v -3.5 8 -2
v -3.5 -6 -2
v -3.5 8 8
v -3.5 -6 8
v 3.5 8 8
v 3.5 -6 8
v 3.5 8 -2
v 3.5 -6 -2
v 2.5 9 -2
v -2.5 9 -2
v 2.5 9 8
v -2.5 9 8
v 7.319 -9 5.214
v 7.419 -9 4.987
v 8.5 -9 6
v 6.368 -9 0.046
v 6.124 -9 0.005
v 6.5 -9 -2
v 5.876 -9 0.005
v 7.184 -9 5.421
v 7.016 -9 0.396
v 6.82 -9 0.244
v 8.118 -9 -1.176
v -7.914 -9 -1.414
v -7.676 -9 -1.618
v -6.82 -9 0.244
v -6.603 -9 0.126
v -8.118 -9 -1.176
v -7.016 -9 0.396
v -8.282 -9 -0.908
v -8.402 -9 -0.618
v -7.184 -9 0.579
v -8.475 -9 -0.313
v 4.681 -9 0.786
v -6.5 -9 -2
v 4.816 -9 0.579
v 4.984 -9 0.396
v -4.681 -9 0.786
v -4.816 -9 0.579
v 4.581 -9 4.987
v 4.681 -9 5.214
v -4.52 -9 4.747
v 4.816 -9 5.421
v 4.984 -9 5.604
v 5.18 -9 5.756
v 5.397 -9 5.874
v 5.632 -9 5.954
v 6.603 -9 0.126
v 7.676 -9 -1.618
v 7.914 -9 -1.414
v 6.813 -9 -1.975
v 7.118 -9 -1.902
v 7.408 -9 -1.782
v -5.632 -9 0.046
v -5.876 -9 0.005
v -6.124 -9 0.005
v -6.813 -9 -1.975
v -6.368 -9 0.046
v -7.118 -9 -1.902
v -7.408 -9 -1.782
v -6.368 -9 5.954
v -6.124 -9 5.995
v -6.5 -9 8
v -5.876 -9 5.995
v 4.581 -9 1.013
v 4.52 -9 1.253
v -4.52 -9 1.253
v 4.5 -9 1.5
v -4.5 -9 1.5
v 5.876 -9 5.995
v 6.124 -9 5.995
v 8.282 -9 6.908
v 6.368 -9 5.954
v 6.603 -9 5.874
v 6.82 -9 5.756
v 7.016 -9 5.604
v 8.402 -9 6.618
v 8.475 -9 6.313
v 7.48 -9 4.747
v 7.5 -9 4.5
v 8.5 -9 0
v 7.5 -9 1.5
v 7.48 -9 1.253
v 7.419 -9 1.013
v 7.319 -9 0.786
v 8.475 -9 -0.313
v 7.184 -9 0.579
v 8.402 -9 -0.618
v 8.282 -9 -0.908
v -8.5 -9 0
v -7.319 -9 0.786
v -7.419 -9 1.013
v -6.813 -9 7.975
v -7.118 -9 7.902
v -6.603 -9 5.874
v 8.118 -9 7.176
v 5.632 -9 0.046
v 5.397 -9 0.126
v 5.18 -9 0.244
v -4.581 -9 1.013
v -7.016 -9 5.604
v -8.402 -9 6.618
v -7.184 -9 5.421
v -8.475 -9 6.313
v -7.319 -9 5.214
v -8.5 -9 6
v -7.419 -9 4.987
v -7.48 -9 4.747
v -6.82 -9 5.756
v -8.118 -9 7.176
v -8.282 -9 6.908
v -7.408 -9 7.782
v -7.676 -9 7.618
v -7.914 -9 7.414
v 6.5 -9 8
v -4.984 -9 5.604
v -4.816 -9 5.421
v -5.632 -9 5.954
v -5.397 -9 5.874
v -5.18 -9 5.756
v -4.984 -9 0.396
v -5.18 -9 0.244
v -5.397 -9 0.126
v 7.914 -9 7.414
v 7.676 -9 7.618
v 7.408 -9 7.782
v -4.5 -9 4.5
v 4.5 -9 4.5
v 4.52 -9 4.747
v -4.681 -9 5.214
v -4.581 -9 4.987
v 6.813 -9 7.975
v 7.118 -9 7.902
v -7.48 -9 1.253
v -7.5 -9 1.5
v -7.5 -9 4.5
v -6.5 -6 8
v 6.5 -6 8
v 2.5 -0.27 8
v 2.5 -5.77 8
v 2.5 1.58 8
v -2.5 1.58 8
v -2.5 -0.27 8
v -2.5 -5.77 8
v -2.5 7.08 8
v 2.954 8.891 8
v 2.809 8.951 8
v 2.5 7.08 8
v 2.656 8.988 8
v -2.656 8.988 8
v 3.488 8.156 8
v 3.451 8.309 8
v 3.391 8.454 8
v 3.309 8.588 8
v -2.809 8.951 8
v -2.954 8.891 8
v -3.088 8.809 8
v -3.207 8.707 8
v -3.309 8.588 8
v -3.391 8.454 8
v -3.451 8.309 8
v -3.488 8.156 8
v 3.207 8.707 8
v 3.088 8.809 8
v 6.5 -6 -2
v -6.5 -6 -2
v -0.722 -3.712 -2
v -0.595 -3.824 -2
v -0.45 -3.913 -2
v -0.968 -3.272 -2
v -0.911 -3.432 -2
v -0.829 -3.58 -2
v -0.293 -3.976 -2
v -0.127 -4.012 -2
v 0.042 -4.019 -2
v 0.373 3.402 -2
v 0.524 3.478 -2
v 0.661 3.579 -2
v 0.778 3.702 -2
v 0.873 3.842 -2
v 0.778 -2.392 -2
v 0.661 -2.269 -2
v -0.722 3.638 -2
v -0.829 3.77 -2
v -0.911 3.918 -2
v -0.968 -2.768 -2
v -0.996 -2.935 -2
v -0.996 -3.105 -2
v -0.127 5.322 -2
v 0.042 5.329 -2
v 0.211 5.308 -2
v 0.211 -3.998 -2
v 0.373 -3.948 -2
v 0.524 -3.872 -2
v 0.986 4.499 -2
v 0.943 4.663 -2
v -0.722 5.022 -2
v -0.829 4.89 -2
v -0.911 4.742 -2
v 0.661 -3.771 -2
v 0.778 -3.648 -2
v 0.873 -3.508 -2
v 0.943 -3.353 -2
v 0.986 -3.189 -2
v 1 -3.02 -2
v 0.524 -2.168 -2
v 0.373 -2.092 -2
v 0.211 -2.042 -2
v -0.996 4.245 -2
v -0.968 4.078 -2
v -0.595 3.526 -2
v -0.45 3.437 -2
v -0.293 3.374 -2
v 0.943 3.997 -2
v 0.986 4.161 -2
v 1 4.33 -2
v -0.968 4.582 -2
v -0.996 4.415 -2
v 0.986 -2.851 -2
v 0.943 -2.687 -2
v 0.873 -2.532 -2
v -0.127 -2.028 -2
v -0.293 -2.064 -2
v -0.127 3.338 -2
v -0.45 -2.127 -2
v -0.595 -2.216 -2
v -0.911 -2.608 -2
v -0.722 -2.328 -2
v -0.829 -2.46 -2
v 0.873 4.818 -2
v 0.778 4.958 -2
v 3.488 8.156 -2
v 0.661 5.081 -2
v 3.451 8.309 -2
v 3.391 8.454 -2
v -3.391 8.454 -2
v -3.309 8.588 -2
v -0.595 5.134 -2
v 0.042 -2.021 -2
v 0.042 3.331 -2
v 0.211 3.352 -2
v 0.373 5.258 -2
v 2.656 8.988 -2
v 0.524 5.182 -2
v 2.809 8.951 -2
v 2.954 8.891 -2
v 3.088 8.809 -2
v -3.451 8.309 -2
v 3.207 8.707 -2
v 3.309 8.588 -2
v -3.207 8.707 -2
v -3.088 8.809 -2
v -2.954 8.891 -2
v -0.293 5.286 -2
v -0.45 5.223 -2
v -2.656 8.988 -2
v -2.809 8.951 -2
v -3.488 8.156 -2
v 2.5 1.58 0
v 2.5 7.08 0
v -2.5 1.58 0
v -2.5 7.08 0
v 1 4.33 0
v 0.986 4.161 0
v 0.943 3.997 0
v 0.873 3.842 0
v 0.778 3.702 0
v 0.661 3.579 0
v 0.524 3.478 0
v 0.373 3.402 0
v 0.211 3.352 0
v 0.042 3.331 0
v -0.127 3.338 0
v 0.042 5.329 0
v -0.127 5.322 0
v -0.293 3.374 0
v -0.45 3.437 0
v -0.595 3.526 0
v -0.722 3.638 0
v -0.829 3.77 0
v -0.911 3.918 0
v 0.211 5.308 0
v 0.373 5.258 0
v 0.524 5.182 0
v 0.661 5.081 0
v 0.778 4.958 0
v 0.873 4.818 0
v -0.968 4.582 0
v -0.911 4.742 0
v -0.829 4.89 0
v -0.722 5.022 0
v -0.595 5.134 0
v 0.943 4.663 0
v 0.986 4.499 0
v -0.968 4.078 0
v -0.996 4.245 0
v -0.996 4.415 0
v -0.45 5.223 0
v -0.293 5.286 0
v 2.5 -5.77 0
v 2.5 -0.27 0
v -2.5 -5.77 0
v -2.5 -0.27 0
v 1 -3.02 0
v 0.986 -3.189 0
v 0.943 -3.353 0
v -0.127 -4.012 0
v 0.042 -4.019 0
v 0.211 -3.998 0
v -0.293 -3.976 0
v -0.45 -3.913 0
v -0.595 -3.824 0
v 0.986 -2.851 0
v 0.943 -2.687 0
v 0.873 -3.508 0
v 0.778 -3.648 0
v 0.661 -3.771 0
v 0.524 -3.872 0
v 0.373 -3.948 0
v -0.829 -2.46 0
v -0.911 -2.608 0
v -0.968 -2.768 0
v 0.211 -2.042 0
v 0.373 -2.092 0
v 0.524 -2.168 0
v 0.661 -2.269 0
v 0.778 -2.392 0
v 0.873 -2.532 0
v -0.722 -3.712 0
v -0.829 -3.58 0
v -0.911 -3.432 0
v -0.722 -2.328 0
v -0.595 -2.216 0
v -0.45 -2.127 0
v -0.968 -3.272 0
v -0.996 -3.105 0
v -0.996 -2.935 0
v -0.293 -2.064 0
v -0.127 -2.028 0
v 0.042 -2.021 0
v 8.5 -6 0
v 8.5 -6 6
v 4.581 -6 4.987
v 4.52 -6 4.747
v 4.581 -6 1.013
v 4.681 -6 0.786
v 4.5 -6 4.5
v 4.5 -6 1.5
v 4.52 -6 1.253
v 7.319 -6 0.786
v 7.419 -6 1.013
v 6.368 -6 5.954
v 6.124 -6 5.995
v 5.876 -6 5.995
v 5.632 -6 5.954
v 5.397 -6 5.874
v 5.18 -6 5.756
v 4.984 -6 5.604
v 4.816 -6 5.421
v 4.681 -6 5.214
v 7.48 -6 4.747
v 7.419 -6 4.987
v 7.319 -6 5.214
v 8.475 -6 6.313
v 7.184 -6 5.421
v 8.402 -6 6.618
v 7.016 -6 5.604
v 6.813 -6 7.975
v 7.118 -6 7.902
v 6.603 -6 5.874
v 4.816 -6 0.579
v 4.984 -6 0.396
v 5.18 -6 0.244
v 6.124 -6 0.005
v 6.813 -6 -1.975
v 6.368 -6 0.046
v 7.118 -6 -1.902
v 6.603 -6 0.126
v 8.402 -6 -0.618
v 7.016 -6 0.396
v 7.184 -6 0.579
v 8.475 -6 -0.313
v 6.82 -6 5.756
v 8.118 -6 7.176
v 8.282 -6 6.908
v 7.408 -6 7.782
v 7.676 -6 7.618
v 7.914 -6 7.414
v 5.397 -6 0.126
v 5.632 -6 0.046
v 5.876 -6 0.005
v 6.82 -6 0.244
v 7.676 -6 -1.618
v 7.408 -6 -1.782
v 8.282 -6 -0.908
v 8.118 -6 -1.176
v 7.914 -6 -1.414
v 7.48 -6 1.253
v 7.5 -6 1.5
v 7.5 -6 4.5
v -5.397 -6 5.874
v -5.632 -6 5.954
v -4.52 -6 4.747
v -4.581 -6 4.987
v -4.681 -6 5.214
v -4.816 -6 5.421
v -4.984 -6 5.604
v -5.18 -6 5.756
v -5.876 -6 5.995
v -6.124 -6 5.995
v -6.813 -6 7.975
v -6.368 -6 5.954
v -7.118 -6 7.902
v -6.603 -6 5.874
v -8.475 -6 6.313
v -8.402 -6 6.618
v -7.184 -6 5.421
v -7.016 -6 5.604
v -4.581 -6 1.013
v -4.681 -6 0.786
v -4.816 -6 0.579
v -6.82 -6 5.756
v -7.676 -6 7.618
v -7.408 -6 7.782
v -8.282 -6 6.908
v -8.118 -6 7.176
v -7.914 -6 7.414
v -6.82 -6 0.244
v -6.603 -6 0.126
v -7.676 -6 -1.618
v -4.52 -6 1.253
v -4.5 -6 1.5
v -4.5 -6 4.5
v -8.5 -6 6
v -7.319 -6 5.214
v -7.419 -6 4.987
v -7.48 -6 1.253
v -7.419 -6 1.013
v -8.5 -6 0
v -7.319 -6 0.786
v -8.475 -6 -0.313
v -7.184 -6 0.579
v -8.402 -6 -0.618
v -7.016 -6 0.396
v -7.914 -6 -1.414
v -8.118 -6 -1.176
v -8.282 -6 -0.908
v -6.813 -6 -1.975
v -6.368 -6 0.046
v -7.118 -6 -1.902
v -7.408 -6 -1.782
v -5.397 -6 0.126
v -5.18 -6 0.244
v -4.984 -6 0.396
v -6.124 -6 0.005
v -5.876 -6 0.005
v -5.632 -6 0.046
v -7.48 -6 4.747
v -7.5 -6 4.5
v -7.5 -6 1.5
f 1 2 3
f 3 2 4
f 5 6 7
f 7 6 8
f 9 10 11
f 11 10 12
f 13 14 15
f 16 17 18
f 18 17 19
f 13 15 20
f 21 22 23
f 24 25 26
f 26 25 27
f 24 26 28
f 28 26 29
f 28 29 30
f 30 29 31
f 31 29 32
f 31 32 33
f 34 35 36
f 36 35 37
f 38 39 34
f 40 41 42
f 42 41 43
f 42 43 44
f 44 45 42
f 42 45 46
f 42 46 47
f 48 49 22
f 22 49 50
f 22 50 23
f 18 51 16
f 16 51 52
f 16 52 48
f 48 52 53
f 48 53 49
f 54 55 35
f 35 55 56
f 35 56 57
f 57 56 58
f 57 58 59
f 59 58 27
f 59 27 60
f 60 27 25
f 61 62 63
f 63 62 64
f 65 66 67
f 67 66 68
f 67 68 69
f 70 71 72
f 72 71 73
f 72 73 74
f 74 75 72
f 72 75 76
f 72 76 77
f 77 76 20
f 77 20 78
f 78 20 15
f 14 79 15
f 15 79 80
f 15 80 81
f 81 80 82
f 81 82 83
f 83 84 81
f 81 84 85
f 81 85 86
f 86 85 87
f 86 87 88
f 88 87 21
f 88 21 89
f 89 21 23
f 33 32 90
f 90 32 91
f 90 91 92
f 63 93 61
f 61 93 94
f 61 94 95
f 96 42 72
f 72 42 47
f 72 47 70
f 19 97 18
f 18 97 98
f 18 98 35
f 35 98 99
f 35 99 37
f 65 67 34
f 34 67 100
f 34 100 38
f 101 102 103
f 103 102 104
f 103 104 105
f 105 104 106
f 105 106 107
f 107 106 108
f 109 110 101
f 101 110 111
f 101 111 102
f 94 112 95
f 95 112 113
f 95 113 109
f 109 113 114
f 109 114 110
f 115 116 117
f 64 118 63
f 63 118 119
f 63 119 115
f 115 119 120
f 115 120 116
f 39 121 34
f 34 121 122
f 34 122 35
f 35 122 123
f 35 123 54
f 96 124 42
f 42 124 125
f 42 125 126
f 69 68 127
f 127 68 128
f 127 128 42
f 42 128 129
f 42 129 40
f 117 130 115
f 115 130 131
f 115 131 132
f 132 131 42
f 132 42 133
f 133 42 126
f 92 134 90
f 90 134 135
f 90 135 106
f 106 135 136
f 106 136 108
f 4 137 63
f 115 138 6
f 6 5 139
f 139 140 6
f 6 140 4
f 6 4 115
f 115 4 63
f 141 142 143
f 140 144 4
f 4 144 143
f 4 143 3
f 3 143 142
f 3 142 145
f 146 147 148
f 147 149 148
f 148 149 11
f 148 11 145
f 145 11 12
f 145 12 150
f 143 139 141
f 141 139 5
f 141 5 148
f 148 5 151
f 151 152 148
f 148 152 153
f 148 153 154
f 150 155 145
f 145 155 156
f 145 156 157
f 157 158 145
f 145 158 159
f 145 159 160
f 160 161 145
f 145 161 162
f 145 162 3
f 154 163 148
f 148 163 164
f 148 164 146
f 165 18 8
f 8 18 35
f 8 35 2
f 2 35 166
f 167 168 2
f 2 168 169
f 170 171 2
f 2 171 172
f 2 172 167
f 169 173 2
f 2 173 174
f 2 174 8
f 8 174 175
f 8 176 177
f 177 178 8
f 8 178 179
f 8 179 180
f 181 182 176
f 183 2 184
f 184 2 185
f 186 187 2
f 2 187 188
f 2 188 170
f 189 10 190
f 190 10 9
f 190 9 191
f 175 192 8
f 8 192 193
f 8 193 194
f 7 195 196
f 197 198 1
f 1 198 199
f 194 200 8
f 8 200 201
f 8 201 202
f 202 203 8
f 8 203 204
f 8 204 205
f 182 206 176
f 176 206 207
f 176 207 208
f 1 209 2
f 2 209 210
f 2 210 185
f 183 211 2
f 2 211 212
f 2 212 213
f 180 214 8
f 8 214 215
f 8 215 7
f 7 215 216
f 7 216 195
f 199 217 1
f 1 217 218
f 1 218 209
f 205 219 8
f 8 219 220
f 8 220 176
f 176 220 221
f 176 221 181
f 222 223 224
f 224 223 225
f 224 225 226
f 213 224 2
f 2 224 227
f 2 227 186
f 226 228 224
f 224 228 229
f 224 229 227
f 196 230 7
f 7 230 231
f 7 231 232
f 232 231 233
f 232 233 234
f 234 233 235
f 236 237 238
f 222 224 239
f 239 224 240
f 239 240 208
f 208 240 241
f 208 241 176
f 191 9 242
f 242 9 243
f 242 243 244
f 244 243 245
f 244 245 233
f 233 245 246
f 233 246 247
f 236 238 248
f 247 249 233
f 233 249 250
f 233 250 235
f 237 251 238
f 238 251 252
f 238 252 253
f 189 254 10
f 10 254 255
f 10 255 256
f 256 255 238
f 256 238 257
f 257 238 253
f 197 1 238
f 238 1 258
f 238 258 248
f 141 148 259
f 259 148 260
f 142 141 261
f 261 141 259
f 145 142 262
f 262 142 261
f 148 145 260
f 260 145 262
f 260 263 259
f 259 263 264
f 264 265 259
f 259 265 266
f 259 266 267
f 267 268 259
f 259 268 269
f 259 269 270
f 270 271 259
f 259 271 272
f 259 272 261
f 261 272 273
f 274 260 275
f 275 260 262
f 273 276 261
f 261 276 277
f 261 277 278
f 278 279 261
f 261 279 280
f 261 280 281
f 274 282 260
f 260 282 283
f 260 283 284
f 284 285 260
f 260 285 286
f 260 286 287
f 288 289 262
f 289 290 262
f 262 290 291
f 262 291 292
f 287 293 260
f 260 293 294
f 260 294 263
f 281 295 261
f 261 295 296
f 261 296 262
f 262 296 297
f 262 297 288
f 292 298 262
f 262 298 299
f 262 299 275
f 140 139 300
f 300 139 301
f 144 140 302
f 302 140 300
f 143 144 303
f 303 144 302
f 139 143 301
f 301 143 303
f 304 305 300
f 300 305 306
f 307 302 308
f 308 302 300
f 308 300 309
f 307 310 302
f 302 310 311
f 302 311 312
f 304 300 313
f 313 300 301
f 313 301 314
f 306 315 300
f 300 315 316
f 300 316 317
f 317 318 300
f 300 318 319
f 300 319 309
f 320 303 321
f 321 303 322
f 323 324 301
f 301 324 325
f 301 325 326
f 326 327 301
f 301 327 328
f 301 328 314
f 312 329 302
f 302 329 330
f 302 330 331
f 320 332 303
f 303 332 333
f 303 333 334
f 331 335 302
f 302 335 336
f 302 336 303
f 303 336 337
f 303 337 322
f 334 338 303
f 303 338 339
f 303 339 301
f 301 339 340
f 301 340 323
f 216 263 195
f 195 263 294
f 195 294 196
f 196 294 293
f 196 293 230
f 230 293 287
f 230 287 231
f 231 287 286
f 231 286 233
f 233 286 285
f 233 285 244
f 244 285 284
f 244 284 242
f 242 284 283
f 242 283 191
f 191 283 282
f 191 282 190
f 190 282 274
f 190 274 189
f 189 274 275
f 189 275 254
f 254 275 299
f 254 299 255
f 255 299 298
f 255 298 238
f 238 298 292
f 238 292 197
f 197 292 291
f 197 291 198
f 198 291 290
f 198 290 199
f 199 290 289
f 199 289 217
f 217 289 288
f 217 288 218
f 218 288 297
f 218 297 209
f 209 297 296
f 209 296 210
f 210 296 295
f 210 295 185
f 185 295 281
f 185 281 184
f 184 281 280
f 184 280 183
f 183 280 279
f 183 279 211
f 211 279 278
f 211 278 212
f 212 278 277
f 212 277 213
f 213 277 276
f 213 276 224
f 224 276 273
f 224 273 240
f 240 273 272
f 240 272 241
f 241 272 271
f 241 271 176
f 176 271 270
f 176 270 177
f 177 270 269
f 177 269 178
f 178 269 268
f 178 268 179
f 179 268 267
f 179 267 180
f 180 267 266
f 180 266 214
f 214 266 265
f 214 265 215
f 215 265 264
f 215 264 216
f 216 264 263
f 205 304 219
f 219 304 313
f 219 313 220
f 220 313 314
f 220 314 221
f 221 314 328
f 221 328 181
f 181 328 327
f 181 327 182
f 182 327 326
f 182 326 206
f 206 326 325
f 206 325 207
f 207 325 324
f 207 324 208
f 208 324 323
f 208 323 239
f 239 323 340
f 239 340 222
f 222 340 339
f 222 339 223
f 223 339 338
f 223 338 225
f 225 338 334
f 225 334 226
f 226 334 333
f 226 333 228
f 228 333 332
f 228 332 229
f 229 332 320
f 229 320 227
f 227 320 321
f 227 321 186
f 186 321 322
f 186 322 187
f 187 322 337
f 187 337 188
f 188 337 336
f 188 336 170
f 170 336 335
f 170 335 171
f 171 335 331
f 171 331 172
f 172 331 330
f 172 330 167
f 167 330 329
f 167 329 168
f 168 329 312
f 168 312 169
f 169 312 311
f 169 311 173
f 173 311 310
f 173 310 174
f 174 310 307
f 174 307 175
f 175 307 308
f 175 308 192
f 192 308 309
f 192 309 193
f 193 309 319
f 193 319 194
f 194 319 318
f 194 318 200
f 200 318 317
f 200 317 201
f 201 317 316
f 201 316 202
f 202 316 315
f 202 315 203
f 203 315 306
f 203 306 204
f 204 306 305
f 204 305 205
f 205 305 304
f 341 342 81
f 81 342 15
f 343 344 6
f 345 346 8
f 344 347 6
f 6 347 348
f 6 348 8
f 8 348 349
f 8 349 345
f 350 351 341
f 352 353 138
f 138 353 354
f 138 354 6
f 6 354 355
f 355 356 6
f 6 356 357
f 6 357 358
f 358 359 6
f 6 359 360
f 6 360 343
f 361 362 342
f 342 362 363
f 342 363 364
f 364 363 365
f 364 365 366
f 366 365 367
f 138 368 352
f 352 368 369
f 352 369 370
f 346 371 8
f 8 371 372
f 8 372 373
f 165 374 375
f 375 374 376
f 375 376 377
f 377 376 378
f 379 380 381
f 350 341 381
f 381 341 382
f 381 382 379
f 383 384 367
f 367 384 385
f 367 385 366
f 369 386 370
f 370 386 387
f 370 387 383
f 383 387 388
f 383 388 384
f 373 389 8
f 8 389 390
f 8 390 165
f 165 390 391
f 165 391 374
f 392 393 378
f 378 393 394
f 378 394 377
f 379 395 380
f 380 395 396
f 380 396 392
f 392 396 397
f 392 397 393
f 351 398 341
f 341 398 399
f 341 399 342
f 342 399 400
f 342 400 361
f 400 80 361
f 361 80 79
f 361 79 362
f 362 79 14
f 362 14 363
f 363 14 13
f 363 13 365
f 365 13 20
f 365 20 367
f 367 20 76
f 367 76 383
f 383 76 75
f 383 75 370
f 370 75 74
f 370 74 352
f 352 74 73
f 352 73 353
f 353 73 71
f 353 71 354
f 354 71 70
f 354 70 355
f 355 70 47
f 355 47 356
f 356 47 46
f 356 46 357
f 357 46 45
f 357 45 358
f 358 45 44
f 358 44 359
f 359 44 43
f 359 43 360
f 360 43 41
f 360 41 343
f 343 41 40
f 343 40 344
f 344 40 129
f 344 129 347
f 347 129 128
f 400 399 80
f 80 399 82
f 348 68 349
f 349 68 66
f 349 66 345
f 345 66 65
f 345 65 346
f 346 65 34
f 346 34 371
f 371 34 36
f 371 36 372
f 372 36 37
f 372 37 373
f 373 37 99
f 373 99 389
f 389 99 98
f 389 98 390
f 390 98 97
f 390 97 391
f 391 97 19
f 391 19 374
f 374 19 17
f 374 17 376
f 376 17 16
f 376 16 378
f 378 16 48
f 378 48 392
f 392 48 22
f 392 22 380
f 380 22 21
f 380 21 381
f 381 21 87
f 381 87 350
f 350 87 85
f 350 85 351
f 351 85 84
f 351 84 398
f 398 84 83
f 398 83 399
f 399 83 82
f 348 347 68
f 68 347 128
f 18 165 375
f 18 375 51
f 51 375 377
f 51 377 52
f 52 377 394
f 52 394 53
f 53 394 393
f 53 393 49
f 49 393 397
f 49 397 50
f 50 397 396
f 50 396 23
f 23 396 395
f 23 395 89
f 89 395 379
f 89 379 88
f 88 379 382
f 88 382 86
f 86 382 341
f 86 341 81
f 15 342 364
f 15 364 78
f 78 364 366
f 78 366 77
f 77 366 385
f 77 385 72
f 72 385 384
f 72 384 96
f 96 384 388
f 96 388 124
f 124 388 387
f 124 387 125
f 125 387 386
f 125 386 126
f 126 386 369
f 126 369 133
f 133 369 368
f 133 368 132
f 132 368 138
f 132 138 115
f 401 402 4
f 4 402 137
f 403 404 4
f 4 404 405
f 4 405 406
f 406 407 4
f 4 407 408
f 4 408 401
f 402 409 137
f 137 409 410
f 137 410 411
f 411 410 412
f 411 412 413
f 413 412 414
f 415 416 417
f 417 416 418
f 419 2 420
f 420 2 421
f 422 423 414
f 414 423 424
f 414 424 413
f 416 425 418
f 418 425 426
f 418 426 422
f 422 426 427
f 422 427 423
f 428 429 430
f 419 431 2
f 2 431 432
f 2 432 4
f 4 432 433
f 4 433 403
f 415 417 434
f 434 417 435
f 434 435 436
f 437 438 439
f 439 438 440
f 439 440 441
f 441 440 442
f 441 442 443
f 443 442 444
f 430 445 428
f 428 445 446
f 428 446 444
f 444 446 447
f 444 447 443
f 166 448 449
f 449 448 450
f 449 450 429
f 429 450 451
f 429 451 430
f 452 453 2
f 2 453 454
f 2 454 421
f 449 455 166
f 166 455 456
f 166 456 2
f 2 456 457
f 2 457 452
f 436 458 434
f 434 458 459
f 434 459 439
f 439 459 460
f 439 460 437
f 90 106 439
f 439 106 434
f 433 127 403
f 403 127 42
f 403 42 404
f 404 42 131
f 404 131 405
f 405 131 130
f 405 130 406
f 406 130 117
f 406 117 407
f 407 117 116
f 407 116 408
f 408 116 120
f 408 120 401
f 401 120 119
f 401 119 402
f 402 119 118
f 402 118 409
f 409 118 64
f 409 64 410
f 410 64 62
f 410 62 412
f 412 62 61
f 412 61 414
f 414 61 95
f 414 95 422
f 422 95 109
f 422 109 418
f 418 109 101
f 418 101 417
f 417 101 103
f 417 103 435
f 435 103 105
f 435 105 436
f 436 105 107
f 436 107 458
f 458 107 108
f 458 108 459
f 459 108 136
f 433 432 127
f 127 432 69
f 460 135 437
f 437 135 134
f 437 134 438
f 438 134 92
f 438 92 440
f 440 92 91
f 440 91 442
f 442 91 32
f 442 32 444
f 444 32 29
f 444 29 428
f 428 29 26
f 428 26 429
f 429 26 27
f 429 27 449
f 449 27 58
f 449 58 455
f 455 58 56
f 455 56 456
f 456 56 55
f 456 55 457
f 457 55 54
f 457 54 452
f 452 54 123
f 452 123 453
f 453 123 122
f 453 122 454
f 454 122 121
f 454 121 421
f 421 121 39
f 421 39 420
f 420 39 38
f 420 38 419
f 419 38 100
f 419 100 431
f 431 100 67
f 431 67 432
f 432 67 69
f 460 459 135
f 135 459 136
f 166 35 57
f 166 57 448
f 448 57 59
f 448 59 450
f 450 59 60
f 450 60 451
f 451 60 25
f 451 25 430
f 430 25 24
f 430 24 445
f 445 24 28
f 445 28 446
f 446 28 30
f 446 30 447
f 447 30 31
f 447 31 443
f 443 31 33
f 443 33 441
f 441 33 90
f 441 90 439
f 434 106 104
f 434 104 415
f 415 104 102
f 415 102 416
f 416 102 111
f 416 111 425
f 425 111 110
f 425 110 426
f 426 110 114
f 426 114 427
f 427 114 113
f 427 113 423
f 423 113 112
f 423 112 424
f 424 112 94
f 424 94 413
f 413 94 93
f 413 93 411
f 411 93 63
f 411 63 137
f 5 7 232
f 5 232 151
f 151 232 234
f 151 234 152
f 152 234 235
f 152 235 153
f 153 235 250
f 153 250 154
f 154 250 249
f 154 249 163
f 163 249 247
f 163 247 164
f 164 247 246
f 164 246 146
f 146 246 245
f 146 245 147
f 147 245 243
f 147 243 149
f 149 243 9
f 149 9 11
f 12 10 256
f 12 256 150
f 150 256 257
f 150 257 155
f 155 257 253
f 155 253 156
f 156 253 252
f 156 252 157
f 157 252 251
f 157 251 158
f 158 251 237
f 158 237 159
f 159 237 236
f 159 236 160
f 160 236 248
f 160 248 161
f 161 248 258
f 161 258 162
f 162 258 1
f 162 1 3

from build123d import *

# Parameters (mm, degrees)
SKETCH1_W            = 7
SKETCH1_H            = 18
BOSS_EXTRUDE1_DEPTH  = 8
SKETCH3_W            = 7
SKETCH3_H            = 18
BOSS_EXTRUDE2_DEPTH  = 2
SKETCH2_W            = 5
SKETCH2_H            = 5.5
CUT_EXTRUDE1_DEPTH   = 8
SKETCH4_R            = 1
CUT_EXTRUDE2_DEPTH   = 3
SKETCH5_W            = 5
SKETCH5_H            = 10
BOSS_EXTRUDE3_DEPTH  = 3
FILLET1_R            = 2
FILLET1_OF_MIRROR2_R = 2
FILLET2_R            = 1


with BuildPart() as part:
    # Sketch1 → Boss-Extrude1 (new body)
    with BuildSketch(Plane.XY):
        Rectangle(SKETCH1_W, SKETCH1_H)
    extrude(amount=BOSS_EXTRUDE1_DEPTH)

    # Sketch3 → Boss-Extrude2 (add)
    with BuildSketch(Plane(origin=(0, 0, 0), x_dir=(-1, 0, 0), z_dir=(0, 0, -1))):
        Rectangle(SKETCH3_W, SKETCH3_H)
    extrude(amount=BOSS_EXTRUDE2_DEPTH)

    # Sketch2 → Cut-Extrude1 (cut)
    with BuildSketch(Plane.XY.offset(8)):
        with Locations((0, 4.33)):
            Rectangle(SKETCH2_W, SKETCH2_H)
        with Locations((0, -3.02)):
            Rectangle(SKETCH2_W, SKETCH2_H)
    extrude(amount=-CUT_EXTRUDE1_DEPTH, mode=Mode.SUBTRACT)

    # Sketch4 → Cut-Extrude2 (cut, through all)
    with BuildSketch(Plane.XY):
        with Locations((0, 4.33)):
            Circle(SKETCH4_R)
        with Locations((0, -3.02)):
            Circle(SKETCH4_R)
    extrude(amount=-CUT_EXTRUDE2_DEPTH, mode=Mode.SUBTRACT)

    # Sketch5 → Boss-Extrude3 (add)
    with BuildSketch(Plane.XZ.offset(9)):
        with Locations((6, 3)):
            Rectangle(SKETCH5_W, SKETCH5_H)
        with BuildLine():
            Line((7.5, 4.5), (7.5, 1.5))
            ThreePointArc((7.5, 1.5), (6, 0), (4.5, 1.5))
            Line((4.5, 1.5), (4.5, 4.5))
            ThreePointArc((4.5, 4.5), (6, 6), (7.5, 4.5))
        make_face(mode=Mode.SUBTRACT)
    boss_extrude3 = extrude(amount=-BOSS_EXTRUDE3_DEPTH)

    # Fillet1
    fillet1_edges = [part.edges().sort_by_distance(p)[0] for p in [
        (8.5, -7.5, -2),
        (8.5, -7.5, 8),
    ]]
    fillet(fillet1_edges, radius=FILLET1_R)

    # Mirror2: Boss-Extrude3 across plane
    add(boss_extrude3.mirror(Plane(origin=(0, 0, 0), x_dir=(0, 0, 1), z_dir=(1, 0, 0))))

    # Fillet1 of Mirror2
    fillet1_of_mirror2_edges = [part.edges().sort_by_distance(p)[0] for p in [
        (-8.5, -7.5, -2),
        (-8.5, -7.5, 8),
    ]]
    fillet(fillet1_of_mirror2_edges, radius=FILLET1_OF_MIRROR2_R)

    # Fillet2
    fillet2_edges = [part.edges().sort_by_distance(p)[0] for p in [
        (3.5, 9, 3),
        (-3.5, 9, 3),
    ]]
    fillet(fillet2_edges, radius=FILLET2_R)


solid = part.part
